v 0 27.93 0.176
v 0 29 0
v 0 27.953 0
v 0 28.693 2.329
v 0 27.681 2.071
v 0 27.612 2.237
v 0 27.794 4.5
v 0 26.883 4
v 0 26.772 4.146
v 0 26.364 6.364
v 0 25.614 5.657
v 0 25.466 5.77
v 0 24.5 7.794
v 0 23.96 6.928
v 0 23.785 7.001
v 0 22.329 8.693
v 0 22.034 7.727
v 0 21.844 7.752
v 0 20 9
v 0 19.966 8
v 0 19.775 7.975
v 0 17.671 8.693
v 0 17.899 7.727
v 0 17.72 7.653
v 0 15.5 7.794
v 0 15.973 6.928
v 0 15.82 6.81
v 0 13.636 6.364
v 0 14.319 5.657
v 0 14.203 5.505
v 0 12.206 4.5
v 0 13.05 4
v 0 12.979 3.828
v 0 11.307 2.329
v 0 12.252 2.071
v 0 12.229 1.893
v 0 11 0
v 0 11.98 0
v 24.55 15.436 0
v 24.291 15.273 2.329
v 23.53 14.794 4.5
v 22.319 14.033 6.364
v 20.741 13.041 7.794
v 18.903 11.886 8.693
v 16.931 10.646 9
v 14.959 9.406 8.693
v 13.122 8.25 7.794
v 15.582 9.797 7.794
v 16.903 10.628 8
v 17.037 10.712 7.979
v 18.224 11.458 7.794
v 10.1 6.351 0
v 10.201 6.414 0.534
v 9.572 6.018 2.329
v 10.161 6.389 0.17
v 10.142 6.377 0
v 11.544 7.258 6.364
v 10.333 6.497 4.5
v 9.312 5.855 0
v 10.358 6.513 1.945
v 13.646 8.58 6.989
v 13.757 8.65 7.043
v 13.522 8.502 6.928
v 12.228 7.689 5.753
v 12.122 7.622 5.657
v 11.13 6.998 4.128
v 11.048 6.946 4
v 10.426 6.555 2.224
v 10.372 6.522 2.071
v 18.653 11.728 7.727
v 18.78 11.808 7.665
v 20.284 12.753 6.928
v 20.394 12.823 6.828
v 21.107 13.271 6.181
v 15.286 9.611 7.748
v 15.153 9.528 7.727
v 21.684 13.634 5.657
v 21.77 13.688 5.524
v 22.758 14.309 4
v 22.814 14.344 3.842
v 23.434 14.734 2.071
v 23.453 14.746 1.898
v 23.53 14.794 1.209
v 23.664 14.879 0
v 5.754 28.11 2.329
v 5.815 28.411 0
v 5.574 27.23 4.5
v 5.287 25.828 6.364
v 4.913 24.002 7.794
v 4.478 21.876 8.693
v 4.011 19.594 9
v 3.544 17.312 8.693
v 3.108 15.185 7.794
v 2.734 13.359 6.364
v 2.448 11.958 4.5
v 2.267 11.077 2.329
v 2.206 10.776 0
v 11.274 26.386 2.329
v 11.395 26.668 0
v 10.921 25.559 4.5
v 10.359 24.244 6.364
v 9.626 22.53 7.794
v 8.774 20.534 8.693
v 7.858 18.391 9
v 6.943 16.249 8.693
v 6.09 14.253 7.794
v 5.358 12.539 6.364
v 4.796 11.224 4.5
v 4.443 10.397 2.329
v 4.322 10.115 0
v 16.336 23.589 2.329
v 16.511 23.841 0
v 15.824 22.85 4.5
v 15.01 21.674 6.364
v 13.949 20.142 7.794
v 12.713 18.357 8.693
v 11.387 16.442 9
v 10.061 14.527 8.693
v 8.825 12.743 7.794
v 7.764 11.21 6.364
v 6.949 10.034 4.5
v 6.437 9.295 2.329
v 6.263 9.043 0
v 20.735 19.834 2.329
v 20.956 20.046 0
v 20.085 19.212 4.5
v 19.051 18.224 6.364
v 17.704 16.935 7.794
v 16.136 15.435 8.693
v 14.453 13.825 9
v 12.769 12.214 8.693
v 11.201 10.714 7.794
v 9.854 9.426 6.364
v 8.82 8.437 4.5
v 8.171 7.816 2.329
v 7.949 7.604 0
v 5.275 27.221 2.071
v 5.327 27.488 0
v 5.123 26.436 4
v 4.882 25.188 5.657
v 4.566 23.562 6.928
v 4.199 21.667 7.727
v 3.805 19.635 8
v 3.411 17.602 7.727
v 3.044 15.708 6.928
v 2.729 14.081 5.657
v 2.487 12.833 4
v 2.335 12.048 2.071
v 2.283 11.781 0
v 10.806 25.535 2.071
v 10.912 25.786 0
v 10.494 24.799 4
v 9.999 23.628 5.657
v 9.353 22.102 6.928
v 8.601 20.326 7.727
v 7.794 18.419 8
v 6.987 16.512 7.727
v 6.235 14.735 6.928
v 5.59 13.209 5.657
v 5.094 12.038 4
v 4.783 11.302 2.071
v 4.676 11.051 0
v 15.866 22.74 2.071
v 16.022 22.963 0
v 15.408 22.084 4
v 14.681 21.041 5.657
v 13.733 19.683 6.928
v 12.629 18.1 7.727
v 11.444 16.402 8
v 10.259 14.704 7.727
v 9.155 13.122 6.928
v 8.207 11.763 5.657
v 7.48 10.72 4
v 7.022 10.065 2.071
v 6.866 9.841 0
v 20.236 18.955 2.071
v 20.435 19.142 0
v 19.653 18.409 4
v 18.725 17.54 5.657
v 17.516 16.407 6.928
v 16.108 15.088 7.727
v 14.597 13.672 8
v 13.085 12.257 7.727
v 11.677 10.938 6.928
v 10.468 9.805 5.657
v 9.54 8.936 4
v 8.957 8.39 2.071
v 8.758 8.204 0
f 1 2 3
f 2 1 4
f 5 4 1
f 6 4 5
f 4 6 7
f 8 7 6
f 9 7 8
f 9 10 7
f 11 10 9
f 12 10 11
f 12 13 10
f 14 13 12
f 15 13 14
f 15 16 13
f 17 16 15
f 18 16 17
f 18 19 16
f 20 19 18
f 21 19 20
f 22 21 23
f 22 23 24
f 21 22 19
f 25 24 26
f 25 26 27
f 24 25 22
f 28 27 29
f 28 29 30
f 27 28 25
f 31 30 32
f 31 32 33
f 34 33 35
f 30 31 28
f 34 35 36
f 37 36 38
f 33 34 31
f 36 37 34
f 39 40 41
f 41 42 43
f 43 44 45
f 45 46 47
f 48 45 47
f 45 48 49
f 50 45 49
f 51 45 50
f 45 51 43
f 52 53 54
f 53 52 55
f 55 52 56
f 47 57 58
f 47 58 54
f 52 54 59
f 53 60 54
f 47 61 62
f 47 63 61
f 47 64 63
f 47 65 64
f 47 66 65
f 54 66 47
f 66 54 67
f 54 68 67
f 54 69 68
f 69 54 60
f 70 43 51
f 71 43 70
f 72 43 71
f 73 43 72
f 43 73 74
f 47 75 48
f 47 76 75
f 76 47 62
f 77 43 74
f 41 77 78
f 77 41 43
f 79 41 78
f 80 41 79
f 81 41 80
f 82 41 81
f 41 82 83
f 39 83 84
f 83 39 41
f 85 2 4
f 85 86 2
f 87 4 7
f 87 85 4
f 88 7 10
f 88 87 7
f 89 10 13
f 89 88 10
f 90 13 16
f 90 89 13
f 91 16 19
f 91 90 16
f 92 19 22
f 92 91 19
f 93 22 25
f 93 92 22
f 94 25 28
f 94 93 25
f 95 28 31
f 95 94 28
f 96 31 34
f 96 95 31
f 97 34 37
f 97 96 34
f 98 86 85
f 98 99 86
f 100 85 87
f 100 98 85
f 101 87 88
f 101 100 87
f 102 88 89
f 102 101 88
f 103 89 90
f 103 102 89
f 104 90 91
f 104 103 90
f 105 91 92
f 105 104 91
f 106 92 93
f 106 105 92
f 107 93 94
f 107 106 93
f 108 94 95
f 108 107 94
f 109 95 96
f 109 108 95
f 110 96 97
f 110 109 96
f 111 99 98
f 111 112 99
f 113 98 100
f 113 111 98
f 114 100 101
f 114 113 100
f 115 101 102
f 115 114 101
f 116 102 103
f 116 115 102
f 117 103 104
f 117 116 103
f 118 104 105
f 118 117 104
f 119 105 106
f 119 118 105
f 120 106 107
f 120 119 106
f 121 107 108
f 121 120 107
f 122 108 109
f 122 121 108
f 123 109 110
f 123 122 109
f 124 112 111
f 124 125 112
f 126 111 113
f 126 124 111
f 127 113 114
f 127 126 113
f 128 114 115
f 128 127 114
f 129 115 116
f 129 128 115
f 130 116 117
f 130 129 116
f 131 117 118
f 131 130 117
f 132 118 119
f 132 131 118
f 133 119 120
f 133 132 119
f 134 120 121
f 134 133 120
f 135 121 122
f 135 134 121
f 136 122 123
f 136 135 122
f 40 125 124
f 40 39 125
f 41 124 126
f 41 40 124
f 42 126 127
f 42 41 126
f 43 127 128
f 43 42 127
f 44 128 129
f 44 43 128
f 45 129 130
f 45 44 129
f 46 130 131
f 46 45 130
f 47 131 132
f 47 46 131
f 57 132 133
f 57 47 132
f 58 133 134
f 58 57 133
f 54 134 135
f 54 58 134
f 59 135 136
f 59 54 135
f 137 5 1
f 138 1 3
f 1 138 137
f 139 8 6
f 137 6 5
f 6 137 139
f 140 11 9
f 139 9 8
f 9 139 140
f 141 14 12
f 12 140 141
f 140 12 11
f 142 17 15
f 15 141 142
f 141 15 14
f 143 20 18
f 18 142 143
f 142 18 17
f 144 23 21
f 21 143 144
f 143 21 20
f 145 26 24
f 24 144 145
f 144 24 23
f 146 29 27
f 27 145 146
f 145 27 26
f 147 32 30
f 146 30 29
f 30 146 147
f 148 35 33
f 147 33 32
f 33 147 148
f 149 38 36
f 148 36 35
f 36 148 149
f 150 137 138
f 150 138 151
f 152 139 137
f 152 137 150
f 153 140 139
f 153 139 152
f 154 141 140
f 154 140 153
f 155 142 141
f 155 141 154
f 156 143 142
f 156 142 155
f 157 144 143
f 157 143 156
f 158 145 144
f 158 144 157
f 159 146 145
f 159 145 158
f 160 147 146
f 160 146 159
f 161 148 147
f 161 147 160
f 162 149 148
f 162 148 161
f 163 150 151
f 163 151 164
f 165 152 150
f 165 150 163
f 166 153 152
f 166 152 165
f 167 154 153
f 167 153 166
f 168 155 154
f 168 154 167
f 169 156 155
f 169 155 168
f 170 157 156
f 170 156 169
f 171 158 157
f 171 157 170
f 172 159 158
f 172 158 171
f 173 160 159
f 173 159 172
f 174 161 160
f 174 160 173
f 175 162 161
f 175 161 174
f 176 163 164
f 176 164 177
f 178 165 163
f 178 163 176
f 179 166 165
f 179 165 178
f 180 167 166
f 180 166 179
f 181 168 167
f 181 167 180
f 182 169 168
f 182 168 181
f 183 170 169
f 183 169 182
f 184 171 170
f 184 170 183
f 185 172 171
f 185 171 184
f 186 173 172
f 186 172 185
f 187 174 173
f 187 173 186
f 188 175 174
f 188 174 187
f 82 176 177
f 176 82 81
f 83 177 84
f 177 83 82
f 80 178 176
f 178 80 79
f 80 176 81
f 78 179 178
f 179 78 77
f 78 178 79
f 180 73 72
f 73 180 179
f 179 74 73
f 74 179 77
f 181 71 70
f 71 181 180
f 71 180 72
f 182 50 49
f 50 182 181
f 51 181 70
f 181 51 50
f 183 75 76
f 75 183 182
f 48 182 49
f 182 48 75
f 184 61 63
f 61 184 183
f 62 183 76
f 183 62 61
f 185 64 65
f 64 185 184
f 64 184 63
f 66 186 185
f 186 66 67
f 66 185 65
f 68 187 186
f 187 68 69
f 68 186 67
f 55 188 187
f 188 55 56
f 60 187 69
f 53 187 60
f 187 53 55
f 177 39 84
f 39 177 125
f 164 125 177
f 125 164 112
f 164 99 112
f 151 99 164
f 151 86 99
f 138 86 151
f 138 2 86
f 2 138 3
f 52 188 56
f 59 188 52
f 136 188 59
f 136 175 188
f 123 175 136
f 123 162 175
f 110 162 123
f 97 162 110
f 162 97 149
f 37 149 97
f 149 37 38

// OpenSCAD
// file: ../build_environments.scad
// build_environments.scad: modules to build level sections
//

module pool(diameter=10.0, wall_height=2.0, step_width=3.0, connections=[])
{
    difference() {
        union() {
        difference() {
            cylinder(h=0.5,r1=diameter+step_width,r2=diameter+step_width,$fn=48);
            translate([0,0,-0.1])
                cylinder(h=0.7,r1=diameter,r2=diameter,$fn=48);
        }
        difference() {
            cylinder(h=wall_height,r1=diameter+step_width+1.0,r2=diameter+step_width+1.0,$fn=48);
            translate([0,0,-0.1])
                cylinder(h=wall_height+0.2,r1=diameter+step_width,r2=diameter+step_width,$fn=48);
        }
        }
    
        for (c = connections)
        {
            rotate([0,90,0]) {
                angle = atan2(c[1],c[0]);
                rotate([-angle,0,0]) {
                    cylinder(h=diameter+5.0,r1=c[2],r2=c[2],$fn=48);
                }
            }
        }
    }
}

module straight(length=10.0, width=2.0, dy1=0.0, dy2=0.0, dz=0.0)
{
    dims = [0, 0, 0, 0, 0, (dz/length)];
    matrix = [
        [ 1, dims[0], dims[1], 0 ],
        [ dims[2], 1, dims[4], 0 ],
        [ dims[5], dims[3], 1, 0 ],
        [ 0, 0, 0, 1 ]
    ];
    multmatrix(matrix)
    difference() {
        translate([dy1,0,0])
        union() {
            rotate([0,90,0]) {
                difference() {
                    cylinder(h=(length-dy1-dy2),r1=width+1.0,r2=width+1.0,$fn=24);
                    translate([0,0,-0.1])
                        cylinder(h=(length-dy1-dy2+0.2),r1=width,r2=width,$fn=24);
                }
                difference() {
                    cylinder(h=1.0,r1=width+2.0,r2=width+2.0,$fn=24);
                    translate([0,0,-0.1])
                        cylinder(h=1.2,r1=width,r2=width,$fn=24);
                }
                translate([0,0,(length-dy1-dy2)-1.0]) {
                    difference() {
                        cylinder(h=1.0,r1=width+2.0,r2=width+2.0,$fn=24);
                        translate([0,0,-0.1])
                            cylinder(h=1.2,r1=width,r2=width,$fn=24);
                    }
                }
            }
        }
        translate([0,0,-(2*width+4.0)/2])
            cube([3*length,3*length,2*width+4.0],center=true);
    }
}

module curve(p0=[0,0], center=[0,0], dir=1, angle=0.0, width=2.0)
{
    radius = sqrt((p0[0]-center[0])*(p0[0]-center[0]) + (p0[1]-center[1])*(p0[1]-center[1]));
    if (dir == 0) {
        difference() {
            rotate([0,0,-90])
            difference() {
                rotate_extrude(angle = angle, convexity = 10, $fn=32)
                    translate([radius, 0, 0])
                        circle(r = width+1.0,$fn=24);
                rotate([0,0,-1.0])
                    rotate_extrude(angle = angle+2.0, convexity = 10, $fn=32)
                        translate([radius, 0, 0])
                            circle(r = width,$fn=24);
            }
            translate([0,0,-(2*width+4.0)/2])
                cube([5*radius,5*radius,2*width+4.0],center=true);
        }
    }
    else {
        difference() {
            rotate([0,0,90])
            difference() {
                rotate_extrude(angle = -angle, convexity = 10, $fn=32)
                    translate([radius, 0, 0])
                        circle(r = width+1.0,$fn=24);
                rotate([0,0,1.0])
                    rotate_extrude(angle = -angle-2.0, convexity = 10, $fn=32)
                        translate([radius, 0, 0])
                            circle(r = width,$fn=24);
            }
            translate([0,0,-(2*width+4.0)/2])
                cube([5*radius,5*radius,2*width+4.0],center=true);
        }
    }

}

// test pool
//pool(diameter=12.0000, wall_height=3.0000, step_width=3.0000, connections=[[0.0000,-26.0000,2.0000], [23.6074,0.0000,2.0000]]);

// test straight, slope
//straight(length=26.0000, width=2.0000, dy1=11.8322, dy2=6.7082, dz=0.0000);
//straight(length=29.1549, width=12.0000, dy1=0.0000, dy2=0.0000, dz=-15.0000);

// test curve
//curve(p0=[23.6074, 0.0000], center=[23.6074, 5.0000], dir=0, angle=60.1011, width=2.0000);
//curve(p0=[33.6426, 12.4219], center=[37.9771, 9.9295], dir=1, angle=120.4627, width=2.0000);
// main file
use <../build_environments.scad>;
curve(p0=[364.2744, 265.8960], center=[346.2496, 257.2297], dir=1, angle=57.8403, width=8.0000);
